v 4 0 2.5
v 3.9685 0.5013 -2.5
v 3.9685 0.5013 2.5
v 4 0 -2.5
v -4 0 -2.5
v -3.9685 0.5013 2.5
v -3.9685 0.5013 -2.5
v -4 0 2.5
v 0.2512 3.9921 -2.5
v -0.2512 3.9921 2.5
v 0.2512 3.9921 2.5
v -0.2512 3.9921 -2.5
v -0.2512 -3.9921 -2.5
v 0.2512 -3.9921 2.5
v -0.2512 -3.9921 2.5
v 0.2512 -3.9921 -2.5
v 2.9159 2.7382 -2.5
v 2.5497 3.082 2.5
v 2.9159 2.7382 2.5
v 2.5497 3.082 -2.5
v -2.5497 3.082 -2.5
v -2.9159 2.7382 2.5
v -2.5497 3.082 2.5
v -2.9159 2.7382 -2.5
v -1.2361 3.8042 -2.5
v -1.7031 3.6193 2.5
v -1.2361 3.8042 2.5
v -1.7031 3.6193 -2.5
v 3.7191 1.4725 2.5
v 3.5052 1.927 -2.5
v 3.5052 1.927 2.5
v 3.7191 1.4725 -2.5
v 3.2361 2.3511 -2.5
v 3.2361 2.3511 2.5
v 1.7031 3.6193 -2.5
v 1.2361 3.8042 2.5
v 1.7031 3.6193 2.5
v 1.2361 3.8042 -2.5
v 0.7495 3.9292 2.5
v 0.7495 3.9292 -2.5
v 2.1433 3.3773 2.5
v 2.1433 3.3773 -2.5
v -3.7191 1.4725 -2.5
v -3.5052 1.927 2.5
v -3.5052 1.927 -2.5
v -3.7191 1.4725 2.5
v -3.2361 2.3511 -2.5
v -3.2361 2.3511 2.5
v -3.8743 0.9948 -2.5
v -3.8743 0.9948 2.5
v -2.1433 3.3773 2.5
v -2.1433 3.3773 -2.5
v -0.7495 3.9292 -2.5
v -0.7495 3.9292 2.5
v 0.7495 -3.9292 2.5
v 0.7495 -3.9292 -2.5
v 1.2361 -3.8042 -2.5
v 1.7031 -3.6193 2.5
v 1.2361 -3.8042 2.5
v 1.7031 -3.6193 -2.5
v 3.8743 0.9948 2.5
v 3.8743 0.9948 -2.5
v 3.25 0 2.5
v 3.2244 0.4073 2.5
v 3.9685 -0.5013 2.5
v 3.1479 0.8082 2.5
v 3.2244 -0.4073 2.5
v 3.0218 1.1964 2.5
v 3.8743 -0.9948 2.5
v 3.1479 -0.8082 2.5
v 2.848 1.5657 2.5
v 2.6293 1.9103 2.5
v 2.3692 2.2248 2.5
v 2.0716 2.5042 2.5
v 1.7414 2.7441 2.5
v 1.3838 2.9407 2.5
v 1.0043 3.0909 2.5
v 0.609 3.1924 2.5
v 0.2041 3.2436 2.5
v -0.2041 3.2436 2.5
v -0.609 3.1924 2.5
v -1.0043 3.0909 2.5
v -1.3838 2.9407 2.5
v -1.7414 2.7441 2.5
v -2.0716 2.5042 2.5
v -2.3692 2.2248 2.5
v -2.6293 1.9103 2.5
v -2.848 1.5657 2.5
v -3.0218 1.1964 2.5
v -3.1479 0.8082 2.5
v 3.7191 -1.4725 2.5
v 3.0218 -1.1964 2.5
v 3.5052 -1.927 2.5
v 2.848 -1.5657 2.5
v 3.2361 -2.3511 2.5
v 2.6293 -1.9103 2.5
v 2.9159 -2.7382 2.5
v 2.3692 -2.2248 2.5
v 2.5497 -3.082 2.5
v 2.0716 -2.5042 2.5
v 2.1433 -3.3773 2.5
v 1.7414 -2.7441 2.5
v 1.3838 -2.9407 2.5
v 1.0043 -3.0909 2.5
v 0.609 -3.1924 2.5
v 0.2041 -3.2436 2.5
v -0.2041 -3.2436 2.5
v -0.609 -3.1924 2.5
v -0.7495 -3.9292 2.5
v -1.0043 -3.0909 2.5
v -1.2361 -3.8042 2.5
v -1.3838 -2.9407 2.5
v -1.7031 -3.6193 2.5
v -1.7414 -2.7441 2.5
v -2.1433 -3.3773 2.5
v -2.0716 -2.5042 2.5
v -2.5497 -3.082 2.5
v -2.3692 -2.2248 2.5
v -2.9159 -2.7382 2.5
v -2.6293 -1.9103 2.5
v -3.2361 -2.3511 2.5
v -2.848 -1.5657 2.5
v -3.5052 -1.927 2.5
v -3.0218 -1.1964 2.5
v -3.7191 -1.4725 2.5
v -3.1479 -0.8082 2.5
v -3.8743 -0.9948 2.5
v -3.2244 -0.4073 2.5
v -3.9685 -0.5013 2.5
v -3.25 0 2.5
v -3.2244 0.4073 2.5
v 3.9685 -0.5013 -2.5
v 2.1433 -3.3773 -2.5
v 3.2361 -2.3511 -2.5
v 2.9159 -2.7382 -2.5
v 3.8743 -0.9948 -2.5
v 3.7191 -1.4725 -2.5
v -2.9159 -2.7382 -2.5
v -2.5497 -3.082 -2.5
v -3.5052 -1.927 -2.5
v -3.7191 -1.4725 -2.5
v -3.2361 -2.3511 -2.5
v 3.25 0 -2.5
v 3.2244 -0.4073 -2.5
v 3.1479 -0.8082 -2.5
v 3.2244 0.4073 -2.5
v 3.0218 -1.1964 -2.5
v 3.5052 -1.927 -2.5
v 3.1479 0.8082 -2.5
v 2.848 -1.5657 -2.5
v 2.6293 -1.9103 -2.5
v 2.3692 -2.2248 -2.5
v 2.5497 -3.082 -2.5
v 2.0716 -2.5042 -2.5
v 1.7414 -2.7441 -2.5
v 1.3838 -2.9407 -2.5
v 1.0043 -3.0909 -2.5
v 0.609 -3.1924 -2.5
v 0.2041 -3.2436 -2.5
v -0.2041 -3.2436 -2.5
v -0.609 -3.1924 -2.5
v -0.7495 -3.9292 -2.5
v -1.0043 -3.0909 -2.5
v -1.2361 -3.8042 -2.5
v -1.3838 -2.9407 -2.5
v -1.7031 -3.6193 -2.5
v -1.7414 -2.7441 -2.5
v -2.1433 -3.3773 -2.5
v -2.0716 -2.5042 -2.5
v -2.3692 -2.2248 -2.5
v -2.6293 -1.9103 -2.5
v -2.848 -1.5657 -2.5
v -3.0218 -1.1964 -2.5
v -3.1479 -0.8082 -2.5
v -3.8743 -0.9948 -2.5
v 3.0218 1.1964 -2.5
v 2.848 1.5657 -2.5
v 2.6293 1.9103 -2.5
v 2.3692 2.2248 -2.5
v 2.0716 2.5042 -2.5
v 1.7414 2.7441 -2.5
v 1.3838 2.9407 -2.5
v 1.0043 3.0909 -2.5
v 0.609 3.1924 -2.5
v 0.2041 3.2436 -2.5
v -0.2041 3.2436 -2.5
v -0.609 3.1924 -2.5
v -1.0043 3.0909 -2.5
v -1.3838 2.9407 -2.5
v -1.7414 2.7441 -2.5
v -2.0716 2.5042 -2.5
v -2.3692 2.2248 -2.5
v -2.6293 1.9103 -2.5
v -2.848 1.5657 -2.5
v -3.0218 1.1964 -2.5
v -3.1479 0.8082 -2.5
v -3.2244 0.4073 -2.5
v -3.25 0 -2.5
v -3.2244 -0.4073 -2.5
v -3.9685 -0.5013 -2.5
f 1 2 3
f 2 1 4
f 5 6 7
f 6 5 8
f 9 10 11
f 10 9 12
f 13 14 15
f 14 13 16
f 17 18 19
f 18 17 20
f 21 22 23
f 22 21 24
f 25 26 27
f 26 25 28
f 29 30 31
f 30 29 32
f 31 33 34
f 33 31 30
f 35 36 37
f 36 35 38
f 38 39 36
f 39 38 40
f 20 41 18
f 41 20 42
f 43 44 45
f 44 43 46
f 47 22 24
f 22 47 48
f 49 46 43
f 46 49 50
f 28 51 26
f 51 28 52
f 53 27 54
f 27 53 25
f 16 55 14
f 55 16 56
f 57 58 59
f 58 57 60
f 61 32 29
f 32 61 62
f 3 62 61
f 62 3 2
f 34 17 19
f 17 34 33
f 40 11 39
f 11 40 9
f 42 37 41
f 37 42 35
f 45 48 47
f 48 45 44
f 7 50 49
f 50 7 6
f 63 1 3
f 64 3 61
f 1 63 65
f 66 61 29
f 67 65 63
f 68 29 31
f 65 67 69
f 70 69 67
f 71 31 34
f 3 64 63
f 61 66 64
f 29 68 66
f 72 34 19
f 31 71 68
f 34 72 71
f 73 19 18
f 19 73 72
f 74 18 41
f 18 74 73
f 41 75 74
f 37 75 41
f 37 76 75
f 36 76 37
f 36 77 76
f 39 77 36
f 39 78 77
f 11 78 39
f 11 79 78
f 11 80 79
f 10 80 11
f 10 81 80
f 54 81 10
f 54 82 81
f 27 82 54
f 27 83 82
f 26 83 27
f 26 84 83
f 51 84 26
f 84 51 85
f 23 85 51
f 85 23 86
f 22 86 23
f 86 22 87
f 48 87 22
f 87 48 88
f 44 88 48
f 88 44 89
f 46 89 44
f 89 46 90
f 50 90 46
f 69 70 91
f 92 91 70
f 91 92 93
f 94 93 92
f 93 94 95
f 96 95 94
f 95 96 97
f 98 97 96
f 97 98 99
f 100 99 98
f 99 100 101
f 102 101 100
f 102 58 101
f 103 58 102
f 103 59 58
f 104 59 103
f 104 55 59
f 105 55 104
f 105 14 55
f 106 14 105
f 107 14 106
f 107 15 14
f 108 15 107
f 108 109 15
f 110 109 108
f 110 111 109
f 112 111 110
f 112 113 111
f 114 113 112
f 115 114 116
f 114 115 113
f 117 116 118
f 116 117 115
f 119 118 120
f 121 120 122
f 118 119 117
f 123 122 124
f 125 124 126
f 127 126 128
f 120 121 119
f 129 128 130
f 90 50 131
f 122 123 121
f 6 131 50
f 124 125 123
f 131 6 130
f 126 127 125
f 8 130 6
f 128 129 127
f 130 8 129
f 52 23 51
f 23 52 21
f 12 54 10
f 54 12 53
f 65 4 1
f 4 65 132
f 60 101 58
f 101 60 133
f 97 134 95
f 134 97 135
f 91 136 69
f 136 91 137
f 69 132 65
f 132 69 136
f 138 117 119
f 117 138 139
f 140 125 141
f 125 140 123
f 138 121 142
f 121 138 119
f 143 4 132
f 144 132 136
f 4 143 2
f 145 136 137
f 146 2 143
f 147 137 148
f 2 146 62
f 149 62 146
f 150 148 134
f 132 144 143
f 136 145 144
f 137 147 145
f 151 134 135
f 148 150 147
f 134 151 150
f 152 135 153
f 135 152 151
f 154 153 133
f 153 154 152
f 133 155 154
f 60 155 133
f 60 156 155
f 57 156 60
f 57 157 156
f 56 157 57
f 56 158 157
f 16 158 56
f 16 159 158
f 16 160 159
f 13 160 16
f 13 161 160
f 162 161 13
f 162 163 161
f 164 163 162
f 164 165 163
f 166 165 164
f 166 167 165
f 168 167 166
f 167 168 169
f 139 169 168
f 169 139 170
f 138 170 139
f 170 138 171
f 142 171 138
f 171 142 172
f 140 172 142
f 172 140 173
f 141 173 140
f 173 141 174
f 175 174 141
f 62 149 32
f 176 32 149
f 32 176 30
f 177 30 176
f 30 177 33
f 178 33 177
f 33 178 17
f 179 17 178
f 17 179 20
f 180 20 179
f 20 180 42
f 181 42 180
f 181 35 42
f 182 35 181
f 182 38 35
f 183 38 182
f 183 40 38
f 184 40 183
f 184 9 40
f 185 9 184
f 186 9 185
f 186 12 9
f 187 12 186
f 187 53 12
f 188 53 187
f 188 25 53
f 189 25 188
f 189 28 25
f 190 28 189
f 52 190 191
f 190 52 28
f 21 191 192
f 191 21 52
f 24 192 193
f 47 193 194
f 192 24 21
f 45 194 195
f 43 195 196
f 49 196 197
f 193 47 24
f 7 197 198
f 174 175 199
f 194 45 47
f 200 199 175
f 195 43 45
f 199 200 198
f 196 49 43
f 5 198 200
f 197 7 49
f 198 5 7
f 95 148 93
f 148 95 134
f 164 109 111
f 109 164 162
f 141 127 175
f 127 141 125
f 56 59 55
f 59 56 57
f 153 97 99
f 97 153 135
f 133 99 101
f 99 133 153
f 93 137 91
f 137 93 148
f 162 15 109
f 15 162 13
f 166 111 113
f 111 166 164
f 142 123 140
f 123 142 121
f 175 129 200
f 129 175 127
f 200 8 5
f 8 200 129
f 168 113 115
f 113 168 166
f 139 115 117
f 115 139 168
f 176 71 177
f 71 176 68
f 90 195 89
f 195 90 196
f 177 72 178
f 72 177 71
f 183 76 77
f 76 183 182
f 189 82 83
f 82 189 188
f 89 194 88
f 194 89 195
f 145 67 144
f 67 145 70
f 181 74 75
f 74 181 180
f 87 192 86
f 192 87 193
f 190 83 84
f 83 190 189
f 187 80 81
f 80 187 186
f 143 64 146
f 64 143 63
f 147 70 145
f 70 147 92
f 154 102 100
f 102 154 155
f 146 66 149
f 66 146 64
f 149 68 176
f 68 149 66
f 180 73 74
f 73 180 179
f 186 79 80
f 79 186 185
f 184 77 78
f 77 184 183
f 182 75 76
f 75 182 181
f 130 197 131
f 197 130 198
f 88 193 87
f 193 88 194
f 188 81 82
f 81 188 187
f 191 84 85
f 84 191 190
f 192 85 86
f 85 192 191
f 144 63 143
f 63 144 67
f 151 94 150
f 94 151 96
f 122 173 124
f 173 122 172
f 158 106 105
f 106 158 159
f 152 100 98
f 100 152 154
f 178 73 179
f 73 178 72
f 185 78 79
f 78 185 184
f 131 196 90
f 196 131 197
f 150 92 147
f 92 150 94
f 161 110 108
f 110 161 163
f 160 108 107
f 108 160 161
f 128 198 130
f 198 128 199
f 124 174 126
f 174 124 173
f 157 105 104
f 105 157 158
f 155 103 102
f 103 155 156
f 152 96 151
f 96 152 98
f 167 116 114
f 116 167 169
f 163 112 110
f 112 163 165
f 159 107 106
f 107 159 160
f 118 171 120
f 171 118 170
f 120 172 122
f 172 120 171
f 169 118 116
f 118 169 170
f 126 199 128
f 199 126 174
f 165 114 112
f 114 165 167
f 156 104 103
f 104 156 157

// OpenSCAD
$fn = 50;


difference() {
	union() {
		translate(v = [0, 0, -2.5000000000]) {
			cylinder(h = 5, r = 4.0000000000);
		}
	}
	union() {
		translate(v = [0, 0, -100.0000000000]) {
			cylinder(h = 200, r = 3.2500000000);
		}
	}
}
